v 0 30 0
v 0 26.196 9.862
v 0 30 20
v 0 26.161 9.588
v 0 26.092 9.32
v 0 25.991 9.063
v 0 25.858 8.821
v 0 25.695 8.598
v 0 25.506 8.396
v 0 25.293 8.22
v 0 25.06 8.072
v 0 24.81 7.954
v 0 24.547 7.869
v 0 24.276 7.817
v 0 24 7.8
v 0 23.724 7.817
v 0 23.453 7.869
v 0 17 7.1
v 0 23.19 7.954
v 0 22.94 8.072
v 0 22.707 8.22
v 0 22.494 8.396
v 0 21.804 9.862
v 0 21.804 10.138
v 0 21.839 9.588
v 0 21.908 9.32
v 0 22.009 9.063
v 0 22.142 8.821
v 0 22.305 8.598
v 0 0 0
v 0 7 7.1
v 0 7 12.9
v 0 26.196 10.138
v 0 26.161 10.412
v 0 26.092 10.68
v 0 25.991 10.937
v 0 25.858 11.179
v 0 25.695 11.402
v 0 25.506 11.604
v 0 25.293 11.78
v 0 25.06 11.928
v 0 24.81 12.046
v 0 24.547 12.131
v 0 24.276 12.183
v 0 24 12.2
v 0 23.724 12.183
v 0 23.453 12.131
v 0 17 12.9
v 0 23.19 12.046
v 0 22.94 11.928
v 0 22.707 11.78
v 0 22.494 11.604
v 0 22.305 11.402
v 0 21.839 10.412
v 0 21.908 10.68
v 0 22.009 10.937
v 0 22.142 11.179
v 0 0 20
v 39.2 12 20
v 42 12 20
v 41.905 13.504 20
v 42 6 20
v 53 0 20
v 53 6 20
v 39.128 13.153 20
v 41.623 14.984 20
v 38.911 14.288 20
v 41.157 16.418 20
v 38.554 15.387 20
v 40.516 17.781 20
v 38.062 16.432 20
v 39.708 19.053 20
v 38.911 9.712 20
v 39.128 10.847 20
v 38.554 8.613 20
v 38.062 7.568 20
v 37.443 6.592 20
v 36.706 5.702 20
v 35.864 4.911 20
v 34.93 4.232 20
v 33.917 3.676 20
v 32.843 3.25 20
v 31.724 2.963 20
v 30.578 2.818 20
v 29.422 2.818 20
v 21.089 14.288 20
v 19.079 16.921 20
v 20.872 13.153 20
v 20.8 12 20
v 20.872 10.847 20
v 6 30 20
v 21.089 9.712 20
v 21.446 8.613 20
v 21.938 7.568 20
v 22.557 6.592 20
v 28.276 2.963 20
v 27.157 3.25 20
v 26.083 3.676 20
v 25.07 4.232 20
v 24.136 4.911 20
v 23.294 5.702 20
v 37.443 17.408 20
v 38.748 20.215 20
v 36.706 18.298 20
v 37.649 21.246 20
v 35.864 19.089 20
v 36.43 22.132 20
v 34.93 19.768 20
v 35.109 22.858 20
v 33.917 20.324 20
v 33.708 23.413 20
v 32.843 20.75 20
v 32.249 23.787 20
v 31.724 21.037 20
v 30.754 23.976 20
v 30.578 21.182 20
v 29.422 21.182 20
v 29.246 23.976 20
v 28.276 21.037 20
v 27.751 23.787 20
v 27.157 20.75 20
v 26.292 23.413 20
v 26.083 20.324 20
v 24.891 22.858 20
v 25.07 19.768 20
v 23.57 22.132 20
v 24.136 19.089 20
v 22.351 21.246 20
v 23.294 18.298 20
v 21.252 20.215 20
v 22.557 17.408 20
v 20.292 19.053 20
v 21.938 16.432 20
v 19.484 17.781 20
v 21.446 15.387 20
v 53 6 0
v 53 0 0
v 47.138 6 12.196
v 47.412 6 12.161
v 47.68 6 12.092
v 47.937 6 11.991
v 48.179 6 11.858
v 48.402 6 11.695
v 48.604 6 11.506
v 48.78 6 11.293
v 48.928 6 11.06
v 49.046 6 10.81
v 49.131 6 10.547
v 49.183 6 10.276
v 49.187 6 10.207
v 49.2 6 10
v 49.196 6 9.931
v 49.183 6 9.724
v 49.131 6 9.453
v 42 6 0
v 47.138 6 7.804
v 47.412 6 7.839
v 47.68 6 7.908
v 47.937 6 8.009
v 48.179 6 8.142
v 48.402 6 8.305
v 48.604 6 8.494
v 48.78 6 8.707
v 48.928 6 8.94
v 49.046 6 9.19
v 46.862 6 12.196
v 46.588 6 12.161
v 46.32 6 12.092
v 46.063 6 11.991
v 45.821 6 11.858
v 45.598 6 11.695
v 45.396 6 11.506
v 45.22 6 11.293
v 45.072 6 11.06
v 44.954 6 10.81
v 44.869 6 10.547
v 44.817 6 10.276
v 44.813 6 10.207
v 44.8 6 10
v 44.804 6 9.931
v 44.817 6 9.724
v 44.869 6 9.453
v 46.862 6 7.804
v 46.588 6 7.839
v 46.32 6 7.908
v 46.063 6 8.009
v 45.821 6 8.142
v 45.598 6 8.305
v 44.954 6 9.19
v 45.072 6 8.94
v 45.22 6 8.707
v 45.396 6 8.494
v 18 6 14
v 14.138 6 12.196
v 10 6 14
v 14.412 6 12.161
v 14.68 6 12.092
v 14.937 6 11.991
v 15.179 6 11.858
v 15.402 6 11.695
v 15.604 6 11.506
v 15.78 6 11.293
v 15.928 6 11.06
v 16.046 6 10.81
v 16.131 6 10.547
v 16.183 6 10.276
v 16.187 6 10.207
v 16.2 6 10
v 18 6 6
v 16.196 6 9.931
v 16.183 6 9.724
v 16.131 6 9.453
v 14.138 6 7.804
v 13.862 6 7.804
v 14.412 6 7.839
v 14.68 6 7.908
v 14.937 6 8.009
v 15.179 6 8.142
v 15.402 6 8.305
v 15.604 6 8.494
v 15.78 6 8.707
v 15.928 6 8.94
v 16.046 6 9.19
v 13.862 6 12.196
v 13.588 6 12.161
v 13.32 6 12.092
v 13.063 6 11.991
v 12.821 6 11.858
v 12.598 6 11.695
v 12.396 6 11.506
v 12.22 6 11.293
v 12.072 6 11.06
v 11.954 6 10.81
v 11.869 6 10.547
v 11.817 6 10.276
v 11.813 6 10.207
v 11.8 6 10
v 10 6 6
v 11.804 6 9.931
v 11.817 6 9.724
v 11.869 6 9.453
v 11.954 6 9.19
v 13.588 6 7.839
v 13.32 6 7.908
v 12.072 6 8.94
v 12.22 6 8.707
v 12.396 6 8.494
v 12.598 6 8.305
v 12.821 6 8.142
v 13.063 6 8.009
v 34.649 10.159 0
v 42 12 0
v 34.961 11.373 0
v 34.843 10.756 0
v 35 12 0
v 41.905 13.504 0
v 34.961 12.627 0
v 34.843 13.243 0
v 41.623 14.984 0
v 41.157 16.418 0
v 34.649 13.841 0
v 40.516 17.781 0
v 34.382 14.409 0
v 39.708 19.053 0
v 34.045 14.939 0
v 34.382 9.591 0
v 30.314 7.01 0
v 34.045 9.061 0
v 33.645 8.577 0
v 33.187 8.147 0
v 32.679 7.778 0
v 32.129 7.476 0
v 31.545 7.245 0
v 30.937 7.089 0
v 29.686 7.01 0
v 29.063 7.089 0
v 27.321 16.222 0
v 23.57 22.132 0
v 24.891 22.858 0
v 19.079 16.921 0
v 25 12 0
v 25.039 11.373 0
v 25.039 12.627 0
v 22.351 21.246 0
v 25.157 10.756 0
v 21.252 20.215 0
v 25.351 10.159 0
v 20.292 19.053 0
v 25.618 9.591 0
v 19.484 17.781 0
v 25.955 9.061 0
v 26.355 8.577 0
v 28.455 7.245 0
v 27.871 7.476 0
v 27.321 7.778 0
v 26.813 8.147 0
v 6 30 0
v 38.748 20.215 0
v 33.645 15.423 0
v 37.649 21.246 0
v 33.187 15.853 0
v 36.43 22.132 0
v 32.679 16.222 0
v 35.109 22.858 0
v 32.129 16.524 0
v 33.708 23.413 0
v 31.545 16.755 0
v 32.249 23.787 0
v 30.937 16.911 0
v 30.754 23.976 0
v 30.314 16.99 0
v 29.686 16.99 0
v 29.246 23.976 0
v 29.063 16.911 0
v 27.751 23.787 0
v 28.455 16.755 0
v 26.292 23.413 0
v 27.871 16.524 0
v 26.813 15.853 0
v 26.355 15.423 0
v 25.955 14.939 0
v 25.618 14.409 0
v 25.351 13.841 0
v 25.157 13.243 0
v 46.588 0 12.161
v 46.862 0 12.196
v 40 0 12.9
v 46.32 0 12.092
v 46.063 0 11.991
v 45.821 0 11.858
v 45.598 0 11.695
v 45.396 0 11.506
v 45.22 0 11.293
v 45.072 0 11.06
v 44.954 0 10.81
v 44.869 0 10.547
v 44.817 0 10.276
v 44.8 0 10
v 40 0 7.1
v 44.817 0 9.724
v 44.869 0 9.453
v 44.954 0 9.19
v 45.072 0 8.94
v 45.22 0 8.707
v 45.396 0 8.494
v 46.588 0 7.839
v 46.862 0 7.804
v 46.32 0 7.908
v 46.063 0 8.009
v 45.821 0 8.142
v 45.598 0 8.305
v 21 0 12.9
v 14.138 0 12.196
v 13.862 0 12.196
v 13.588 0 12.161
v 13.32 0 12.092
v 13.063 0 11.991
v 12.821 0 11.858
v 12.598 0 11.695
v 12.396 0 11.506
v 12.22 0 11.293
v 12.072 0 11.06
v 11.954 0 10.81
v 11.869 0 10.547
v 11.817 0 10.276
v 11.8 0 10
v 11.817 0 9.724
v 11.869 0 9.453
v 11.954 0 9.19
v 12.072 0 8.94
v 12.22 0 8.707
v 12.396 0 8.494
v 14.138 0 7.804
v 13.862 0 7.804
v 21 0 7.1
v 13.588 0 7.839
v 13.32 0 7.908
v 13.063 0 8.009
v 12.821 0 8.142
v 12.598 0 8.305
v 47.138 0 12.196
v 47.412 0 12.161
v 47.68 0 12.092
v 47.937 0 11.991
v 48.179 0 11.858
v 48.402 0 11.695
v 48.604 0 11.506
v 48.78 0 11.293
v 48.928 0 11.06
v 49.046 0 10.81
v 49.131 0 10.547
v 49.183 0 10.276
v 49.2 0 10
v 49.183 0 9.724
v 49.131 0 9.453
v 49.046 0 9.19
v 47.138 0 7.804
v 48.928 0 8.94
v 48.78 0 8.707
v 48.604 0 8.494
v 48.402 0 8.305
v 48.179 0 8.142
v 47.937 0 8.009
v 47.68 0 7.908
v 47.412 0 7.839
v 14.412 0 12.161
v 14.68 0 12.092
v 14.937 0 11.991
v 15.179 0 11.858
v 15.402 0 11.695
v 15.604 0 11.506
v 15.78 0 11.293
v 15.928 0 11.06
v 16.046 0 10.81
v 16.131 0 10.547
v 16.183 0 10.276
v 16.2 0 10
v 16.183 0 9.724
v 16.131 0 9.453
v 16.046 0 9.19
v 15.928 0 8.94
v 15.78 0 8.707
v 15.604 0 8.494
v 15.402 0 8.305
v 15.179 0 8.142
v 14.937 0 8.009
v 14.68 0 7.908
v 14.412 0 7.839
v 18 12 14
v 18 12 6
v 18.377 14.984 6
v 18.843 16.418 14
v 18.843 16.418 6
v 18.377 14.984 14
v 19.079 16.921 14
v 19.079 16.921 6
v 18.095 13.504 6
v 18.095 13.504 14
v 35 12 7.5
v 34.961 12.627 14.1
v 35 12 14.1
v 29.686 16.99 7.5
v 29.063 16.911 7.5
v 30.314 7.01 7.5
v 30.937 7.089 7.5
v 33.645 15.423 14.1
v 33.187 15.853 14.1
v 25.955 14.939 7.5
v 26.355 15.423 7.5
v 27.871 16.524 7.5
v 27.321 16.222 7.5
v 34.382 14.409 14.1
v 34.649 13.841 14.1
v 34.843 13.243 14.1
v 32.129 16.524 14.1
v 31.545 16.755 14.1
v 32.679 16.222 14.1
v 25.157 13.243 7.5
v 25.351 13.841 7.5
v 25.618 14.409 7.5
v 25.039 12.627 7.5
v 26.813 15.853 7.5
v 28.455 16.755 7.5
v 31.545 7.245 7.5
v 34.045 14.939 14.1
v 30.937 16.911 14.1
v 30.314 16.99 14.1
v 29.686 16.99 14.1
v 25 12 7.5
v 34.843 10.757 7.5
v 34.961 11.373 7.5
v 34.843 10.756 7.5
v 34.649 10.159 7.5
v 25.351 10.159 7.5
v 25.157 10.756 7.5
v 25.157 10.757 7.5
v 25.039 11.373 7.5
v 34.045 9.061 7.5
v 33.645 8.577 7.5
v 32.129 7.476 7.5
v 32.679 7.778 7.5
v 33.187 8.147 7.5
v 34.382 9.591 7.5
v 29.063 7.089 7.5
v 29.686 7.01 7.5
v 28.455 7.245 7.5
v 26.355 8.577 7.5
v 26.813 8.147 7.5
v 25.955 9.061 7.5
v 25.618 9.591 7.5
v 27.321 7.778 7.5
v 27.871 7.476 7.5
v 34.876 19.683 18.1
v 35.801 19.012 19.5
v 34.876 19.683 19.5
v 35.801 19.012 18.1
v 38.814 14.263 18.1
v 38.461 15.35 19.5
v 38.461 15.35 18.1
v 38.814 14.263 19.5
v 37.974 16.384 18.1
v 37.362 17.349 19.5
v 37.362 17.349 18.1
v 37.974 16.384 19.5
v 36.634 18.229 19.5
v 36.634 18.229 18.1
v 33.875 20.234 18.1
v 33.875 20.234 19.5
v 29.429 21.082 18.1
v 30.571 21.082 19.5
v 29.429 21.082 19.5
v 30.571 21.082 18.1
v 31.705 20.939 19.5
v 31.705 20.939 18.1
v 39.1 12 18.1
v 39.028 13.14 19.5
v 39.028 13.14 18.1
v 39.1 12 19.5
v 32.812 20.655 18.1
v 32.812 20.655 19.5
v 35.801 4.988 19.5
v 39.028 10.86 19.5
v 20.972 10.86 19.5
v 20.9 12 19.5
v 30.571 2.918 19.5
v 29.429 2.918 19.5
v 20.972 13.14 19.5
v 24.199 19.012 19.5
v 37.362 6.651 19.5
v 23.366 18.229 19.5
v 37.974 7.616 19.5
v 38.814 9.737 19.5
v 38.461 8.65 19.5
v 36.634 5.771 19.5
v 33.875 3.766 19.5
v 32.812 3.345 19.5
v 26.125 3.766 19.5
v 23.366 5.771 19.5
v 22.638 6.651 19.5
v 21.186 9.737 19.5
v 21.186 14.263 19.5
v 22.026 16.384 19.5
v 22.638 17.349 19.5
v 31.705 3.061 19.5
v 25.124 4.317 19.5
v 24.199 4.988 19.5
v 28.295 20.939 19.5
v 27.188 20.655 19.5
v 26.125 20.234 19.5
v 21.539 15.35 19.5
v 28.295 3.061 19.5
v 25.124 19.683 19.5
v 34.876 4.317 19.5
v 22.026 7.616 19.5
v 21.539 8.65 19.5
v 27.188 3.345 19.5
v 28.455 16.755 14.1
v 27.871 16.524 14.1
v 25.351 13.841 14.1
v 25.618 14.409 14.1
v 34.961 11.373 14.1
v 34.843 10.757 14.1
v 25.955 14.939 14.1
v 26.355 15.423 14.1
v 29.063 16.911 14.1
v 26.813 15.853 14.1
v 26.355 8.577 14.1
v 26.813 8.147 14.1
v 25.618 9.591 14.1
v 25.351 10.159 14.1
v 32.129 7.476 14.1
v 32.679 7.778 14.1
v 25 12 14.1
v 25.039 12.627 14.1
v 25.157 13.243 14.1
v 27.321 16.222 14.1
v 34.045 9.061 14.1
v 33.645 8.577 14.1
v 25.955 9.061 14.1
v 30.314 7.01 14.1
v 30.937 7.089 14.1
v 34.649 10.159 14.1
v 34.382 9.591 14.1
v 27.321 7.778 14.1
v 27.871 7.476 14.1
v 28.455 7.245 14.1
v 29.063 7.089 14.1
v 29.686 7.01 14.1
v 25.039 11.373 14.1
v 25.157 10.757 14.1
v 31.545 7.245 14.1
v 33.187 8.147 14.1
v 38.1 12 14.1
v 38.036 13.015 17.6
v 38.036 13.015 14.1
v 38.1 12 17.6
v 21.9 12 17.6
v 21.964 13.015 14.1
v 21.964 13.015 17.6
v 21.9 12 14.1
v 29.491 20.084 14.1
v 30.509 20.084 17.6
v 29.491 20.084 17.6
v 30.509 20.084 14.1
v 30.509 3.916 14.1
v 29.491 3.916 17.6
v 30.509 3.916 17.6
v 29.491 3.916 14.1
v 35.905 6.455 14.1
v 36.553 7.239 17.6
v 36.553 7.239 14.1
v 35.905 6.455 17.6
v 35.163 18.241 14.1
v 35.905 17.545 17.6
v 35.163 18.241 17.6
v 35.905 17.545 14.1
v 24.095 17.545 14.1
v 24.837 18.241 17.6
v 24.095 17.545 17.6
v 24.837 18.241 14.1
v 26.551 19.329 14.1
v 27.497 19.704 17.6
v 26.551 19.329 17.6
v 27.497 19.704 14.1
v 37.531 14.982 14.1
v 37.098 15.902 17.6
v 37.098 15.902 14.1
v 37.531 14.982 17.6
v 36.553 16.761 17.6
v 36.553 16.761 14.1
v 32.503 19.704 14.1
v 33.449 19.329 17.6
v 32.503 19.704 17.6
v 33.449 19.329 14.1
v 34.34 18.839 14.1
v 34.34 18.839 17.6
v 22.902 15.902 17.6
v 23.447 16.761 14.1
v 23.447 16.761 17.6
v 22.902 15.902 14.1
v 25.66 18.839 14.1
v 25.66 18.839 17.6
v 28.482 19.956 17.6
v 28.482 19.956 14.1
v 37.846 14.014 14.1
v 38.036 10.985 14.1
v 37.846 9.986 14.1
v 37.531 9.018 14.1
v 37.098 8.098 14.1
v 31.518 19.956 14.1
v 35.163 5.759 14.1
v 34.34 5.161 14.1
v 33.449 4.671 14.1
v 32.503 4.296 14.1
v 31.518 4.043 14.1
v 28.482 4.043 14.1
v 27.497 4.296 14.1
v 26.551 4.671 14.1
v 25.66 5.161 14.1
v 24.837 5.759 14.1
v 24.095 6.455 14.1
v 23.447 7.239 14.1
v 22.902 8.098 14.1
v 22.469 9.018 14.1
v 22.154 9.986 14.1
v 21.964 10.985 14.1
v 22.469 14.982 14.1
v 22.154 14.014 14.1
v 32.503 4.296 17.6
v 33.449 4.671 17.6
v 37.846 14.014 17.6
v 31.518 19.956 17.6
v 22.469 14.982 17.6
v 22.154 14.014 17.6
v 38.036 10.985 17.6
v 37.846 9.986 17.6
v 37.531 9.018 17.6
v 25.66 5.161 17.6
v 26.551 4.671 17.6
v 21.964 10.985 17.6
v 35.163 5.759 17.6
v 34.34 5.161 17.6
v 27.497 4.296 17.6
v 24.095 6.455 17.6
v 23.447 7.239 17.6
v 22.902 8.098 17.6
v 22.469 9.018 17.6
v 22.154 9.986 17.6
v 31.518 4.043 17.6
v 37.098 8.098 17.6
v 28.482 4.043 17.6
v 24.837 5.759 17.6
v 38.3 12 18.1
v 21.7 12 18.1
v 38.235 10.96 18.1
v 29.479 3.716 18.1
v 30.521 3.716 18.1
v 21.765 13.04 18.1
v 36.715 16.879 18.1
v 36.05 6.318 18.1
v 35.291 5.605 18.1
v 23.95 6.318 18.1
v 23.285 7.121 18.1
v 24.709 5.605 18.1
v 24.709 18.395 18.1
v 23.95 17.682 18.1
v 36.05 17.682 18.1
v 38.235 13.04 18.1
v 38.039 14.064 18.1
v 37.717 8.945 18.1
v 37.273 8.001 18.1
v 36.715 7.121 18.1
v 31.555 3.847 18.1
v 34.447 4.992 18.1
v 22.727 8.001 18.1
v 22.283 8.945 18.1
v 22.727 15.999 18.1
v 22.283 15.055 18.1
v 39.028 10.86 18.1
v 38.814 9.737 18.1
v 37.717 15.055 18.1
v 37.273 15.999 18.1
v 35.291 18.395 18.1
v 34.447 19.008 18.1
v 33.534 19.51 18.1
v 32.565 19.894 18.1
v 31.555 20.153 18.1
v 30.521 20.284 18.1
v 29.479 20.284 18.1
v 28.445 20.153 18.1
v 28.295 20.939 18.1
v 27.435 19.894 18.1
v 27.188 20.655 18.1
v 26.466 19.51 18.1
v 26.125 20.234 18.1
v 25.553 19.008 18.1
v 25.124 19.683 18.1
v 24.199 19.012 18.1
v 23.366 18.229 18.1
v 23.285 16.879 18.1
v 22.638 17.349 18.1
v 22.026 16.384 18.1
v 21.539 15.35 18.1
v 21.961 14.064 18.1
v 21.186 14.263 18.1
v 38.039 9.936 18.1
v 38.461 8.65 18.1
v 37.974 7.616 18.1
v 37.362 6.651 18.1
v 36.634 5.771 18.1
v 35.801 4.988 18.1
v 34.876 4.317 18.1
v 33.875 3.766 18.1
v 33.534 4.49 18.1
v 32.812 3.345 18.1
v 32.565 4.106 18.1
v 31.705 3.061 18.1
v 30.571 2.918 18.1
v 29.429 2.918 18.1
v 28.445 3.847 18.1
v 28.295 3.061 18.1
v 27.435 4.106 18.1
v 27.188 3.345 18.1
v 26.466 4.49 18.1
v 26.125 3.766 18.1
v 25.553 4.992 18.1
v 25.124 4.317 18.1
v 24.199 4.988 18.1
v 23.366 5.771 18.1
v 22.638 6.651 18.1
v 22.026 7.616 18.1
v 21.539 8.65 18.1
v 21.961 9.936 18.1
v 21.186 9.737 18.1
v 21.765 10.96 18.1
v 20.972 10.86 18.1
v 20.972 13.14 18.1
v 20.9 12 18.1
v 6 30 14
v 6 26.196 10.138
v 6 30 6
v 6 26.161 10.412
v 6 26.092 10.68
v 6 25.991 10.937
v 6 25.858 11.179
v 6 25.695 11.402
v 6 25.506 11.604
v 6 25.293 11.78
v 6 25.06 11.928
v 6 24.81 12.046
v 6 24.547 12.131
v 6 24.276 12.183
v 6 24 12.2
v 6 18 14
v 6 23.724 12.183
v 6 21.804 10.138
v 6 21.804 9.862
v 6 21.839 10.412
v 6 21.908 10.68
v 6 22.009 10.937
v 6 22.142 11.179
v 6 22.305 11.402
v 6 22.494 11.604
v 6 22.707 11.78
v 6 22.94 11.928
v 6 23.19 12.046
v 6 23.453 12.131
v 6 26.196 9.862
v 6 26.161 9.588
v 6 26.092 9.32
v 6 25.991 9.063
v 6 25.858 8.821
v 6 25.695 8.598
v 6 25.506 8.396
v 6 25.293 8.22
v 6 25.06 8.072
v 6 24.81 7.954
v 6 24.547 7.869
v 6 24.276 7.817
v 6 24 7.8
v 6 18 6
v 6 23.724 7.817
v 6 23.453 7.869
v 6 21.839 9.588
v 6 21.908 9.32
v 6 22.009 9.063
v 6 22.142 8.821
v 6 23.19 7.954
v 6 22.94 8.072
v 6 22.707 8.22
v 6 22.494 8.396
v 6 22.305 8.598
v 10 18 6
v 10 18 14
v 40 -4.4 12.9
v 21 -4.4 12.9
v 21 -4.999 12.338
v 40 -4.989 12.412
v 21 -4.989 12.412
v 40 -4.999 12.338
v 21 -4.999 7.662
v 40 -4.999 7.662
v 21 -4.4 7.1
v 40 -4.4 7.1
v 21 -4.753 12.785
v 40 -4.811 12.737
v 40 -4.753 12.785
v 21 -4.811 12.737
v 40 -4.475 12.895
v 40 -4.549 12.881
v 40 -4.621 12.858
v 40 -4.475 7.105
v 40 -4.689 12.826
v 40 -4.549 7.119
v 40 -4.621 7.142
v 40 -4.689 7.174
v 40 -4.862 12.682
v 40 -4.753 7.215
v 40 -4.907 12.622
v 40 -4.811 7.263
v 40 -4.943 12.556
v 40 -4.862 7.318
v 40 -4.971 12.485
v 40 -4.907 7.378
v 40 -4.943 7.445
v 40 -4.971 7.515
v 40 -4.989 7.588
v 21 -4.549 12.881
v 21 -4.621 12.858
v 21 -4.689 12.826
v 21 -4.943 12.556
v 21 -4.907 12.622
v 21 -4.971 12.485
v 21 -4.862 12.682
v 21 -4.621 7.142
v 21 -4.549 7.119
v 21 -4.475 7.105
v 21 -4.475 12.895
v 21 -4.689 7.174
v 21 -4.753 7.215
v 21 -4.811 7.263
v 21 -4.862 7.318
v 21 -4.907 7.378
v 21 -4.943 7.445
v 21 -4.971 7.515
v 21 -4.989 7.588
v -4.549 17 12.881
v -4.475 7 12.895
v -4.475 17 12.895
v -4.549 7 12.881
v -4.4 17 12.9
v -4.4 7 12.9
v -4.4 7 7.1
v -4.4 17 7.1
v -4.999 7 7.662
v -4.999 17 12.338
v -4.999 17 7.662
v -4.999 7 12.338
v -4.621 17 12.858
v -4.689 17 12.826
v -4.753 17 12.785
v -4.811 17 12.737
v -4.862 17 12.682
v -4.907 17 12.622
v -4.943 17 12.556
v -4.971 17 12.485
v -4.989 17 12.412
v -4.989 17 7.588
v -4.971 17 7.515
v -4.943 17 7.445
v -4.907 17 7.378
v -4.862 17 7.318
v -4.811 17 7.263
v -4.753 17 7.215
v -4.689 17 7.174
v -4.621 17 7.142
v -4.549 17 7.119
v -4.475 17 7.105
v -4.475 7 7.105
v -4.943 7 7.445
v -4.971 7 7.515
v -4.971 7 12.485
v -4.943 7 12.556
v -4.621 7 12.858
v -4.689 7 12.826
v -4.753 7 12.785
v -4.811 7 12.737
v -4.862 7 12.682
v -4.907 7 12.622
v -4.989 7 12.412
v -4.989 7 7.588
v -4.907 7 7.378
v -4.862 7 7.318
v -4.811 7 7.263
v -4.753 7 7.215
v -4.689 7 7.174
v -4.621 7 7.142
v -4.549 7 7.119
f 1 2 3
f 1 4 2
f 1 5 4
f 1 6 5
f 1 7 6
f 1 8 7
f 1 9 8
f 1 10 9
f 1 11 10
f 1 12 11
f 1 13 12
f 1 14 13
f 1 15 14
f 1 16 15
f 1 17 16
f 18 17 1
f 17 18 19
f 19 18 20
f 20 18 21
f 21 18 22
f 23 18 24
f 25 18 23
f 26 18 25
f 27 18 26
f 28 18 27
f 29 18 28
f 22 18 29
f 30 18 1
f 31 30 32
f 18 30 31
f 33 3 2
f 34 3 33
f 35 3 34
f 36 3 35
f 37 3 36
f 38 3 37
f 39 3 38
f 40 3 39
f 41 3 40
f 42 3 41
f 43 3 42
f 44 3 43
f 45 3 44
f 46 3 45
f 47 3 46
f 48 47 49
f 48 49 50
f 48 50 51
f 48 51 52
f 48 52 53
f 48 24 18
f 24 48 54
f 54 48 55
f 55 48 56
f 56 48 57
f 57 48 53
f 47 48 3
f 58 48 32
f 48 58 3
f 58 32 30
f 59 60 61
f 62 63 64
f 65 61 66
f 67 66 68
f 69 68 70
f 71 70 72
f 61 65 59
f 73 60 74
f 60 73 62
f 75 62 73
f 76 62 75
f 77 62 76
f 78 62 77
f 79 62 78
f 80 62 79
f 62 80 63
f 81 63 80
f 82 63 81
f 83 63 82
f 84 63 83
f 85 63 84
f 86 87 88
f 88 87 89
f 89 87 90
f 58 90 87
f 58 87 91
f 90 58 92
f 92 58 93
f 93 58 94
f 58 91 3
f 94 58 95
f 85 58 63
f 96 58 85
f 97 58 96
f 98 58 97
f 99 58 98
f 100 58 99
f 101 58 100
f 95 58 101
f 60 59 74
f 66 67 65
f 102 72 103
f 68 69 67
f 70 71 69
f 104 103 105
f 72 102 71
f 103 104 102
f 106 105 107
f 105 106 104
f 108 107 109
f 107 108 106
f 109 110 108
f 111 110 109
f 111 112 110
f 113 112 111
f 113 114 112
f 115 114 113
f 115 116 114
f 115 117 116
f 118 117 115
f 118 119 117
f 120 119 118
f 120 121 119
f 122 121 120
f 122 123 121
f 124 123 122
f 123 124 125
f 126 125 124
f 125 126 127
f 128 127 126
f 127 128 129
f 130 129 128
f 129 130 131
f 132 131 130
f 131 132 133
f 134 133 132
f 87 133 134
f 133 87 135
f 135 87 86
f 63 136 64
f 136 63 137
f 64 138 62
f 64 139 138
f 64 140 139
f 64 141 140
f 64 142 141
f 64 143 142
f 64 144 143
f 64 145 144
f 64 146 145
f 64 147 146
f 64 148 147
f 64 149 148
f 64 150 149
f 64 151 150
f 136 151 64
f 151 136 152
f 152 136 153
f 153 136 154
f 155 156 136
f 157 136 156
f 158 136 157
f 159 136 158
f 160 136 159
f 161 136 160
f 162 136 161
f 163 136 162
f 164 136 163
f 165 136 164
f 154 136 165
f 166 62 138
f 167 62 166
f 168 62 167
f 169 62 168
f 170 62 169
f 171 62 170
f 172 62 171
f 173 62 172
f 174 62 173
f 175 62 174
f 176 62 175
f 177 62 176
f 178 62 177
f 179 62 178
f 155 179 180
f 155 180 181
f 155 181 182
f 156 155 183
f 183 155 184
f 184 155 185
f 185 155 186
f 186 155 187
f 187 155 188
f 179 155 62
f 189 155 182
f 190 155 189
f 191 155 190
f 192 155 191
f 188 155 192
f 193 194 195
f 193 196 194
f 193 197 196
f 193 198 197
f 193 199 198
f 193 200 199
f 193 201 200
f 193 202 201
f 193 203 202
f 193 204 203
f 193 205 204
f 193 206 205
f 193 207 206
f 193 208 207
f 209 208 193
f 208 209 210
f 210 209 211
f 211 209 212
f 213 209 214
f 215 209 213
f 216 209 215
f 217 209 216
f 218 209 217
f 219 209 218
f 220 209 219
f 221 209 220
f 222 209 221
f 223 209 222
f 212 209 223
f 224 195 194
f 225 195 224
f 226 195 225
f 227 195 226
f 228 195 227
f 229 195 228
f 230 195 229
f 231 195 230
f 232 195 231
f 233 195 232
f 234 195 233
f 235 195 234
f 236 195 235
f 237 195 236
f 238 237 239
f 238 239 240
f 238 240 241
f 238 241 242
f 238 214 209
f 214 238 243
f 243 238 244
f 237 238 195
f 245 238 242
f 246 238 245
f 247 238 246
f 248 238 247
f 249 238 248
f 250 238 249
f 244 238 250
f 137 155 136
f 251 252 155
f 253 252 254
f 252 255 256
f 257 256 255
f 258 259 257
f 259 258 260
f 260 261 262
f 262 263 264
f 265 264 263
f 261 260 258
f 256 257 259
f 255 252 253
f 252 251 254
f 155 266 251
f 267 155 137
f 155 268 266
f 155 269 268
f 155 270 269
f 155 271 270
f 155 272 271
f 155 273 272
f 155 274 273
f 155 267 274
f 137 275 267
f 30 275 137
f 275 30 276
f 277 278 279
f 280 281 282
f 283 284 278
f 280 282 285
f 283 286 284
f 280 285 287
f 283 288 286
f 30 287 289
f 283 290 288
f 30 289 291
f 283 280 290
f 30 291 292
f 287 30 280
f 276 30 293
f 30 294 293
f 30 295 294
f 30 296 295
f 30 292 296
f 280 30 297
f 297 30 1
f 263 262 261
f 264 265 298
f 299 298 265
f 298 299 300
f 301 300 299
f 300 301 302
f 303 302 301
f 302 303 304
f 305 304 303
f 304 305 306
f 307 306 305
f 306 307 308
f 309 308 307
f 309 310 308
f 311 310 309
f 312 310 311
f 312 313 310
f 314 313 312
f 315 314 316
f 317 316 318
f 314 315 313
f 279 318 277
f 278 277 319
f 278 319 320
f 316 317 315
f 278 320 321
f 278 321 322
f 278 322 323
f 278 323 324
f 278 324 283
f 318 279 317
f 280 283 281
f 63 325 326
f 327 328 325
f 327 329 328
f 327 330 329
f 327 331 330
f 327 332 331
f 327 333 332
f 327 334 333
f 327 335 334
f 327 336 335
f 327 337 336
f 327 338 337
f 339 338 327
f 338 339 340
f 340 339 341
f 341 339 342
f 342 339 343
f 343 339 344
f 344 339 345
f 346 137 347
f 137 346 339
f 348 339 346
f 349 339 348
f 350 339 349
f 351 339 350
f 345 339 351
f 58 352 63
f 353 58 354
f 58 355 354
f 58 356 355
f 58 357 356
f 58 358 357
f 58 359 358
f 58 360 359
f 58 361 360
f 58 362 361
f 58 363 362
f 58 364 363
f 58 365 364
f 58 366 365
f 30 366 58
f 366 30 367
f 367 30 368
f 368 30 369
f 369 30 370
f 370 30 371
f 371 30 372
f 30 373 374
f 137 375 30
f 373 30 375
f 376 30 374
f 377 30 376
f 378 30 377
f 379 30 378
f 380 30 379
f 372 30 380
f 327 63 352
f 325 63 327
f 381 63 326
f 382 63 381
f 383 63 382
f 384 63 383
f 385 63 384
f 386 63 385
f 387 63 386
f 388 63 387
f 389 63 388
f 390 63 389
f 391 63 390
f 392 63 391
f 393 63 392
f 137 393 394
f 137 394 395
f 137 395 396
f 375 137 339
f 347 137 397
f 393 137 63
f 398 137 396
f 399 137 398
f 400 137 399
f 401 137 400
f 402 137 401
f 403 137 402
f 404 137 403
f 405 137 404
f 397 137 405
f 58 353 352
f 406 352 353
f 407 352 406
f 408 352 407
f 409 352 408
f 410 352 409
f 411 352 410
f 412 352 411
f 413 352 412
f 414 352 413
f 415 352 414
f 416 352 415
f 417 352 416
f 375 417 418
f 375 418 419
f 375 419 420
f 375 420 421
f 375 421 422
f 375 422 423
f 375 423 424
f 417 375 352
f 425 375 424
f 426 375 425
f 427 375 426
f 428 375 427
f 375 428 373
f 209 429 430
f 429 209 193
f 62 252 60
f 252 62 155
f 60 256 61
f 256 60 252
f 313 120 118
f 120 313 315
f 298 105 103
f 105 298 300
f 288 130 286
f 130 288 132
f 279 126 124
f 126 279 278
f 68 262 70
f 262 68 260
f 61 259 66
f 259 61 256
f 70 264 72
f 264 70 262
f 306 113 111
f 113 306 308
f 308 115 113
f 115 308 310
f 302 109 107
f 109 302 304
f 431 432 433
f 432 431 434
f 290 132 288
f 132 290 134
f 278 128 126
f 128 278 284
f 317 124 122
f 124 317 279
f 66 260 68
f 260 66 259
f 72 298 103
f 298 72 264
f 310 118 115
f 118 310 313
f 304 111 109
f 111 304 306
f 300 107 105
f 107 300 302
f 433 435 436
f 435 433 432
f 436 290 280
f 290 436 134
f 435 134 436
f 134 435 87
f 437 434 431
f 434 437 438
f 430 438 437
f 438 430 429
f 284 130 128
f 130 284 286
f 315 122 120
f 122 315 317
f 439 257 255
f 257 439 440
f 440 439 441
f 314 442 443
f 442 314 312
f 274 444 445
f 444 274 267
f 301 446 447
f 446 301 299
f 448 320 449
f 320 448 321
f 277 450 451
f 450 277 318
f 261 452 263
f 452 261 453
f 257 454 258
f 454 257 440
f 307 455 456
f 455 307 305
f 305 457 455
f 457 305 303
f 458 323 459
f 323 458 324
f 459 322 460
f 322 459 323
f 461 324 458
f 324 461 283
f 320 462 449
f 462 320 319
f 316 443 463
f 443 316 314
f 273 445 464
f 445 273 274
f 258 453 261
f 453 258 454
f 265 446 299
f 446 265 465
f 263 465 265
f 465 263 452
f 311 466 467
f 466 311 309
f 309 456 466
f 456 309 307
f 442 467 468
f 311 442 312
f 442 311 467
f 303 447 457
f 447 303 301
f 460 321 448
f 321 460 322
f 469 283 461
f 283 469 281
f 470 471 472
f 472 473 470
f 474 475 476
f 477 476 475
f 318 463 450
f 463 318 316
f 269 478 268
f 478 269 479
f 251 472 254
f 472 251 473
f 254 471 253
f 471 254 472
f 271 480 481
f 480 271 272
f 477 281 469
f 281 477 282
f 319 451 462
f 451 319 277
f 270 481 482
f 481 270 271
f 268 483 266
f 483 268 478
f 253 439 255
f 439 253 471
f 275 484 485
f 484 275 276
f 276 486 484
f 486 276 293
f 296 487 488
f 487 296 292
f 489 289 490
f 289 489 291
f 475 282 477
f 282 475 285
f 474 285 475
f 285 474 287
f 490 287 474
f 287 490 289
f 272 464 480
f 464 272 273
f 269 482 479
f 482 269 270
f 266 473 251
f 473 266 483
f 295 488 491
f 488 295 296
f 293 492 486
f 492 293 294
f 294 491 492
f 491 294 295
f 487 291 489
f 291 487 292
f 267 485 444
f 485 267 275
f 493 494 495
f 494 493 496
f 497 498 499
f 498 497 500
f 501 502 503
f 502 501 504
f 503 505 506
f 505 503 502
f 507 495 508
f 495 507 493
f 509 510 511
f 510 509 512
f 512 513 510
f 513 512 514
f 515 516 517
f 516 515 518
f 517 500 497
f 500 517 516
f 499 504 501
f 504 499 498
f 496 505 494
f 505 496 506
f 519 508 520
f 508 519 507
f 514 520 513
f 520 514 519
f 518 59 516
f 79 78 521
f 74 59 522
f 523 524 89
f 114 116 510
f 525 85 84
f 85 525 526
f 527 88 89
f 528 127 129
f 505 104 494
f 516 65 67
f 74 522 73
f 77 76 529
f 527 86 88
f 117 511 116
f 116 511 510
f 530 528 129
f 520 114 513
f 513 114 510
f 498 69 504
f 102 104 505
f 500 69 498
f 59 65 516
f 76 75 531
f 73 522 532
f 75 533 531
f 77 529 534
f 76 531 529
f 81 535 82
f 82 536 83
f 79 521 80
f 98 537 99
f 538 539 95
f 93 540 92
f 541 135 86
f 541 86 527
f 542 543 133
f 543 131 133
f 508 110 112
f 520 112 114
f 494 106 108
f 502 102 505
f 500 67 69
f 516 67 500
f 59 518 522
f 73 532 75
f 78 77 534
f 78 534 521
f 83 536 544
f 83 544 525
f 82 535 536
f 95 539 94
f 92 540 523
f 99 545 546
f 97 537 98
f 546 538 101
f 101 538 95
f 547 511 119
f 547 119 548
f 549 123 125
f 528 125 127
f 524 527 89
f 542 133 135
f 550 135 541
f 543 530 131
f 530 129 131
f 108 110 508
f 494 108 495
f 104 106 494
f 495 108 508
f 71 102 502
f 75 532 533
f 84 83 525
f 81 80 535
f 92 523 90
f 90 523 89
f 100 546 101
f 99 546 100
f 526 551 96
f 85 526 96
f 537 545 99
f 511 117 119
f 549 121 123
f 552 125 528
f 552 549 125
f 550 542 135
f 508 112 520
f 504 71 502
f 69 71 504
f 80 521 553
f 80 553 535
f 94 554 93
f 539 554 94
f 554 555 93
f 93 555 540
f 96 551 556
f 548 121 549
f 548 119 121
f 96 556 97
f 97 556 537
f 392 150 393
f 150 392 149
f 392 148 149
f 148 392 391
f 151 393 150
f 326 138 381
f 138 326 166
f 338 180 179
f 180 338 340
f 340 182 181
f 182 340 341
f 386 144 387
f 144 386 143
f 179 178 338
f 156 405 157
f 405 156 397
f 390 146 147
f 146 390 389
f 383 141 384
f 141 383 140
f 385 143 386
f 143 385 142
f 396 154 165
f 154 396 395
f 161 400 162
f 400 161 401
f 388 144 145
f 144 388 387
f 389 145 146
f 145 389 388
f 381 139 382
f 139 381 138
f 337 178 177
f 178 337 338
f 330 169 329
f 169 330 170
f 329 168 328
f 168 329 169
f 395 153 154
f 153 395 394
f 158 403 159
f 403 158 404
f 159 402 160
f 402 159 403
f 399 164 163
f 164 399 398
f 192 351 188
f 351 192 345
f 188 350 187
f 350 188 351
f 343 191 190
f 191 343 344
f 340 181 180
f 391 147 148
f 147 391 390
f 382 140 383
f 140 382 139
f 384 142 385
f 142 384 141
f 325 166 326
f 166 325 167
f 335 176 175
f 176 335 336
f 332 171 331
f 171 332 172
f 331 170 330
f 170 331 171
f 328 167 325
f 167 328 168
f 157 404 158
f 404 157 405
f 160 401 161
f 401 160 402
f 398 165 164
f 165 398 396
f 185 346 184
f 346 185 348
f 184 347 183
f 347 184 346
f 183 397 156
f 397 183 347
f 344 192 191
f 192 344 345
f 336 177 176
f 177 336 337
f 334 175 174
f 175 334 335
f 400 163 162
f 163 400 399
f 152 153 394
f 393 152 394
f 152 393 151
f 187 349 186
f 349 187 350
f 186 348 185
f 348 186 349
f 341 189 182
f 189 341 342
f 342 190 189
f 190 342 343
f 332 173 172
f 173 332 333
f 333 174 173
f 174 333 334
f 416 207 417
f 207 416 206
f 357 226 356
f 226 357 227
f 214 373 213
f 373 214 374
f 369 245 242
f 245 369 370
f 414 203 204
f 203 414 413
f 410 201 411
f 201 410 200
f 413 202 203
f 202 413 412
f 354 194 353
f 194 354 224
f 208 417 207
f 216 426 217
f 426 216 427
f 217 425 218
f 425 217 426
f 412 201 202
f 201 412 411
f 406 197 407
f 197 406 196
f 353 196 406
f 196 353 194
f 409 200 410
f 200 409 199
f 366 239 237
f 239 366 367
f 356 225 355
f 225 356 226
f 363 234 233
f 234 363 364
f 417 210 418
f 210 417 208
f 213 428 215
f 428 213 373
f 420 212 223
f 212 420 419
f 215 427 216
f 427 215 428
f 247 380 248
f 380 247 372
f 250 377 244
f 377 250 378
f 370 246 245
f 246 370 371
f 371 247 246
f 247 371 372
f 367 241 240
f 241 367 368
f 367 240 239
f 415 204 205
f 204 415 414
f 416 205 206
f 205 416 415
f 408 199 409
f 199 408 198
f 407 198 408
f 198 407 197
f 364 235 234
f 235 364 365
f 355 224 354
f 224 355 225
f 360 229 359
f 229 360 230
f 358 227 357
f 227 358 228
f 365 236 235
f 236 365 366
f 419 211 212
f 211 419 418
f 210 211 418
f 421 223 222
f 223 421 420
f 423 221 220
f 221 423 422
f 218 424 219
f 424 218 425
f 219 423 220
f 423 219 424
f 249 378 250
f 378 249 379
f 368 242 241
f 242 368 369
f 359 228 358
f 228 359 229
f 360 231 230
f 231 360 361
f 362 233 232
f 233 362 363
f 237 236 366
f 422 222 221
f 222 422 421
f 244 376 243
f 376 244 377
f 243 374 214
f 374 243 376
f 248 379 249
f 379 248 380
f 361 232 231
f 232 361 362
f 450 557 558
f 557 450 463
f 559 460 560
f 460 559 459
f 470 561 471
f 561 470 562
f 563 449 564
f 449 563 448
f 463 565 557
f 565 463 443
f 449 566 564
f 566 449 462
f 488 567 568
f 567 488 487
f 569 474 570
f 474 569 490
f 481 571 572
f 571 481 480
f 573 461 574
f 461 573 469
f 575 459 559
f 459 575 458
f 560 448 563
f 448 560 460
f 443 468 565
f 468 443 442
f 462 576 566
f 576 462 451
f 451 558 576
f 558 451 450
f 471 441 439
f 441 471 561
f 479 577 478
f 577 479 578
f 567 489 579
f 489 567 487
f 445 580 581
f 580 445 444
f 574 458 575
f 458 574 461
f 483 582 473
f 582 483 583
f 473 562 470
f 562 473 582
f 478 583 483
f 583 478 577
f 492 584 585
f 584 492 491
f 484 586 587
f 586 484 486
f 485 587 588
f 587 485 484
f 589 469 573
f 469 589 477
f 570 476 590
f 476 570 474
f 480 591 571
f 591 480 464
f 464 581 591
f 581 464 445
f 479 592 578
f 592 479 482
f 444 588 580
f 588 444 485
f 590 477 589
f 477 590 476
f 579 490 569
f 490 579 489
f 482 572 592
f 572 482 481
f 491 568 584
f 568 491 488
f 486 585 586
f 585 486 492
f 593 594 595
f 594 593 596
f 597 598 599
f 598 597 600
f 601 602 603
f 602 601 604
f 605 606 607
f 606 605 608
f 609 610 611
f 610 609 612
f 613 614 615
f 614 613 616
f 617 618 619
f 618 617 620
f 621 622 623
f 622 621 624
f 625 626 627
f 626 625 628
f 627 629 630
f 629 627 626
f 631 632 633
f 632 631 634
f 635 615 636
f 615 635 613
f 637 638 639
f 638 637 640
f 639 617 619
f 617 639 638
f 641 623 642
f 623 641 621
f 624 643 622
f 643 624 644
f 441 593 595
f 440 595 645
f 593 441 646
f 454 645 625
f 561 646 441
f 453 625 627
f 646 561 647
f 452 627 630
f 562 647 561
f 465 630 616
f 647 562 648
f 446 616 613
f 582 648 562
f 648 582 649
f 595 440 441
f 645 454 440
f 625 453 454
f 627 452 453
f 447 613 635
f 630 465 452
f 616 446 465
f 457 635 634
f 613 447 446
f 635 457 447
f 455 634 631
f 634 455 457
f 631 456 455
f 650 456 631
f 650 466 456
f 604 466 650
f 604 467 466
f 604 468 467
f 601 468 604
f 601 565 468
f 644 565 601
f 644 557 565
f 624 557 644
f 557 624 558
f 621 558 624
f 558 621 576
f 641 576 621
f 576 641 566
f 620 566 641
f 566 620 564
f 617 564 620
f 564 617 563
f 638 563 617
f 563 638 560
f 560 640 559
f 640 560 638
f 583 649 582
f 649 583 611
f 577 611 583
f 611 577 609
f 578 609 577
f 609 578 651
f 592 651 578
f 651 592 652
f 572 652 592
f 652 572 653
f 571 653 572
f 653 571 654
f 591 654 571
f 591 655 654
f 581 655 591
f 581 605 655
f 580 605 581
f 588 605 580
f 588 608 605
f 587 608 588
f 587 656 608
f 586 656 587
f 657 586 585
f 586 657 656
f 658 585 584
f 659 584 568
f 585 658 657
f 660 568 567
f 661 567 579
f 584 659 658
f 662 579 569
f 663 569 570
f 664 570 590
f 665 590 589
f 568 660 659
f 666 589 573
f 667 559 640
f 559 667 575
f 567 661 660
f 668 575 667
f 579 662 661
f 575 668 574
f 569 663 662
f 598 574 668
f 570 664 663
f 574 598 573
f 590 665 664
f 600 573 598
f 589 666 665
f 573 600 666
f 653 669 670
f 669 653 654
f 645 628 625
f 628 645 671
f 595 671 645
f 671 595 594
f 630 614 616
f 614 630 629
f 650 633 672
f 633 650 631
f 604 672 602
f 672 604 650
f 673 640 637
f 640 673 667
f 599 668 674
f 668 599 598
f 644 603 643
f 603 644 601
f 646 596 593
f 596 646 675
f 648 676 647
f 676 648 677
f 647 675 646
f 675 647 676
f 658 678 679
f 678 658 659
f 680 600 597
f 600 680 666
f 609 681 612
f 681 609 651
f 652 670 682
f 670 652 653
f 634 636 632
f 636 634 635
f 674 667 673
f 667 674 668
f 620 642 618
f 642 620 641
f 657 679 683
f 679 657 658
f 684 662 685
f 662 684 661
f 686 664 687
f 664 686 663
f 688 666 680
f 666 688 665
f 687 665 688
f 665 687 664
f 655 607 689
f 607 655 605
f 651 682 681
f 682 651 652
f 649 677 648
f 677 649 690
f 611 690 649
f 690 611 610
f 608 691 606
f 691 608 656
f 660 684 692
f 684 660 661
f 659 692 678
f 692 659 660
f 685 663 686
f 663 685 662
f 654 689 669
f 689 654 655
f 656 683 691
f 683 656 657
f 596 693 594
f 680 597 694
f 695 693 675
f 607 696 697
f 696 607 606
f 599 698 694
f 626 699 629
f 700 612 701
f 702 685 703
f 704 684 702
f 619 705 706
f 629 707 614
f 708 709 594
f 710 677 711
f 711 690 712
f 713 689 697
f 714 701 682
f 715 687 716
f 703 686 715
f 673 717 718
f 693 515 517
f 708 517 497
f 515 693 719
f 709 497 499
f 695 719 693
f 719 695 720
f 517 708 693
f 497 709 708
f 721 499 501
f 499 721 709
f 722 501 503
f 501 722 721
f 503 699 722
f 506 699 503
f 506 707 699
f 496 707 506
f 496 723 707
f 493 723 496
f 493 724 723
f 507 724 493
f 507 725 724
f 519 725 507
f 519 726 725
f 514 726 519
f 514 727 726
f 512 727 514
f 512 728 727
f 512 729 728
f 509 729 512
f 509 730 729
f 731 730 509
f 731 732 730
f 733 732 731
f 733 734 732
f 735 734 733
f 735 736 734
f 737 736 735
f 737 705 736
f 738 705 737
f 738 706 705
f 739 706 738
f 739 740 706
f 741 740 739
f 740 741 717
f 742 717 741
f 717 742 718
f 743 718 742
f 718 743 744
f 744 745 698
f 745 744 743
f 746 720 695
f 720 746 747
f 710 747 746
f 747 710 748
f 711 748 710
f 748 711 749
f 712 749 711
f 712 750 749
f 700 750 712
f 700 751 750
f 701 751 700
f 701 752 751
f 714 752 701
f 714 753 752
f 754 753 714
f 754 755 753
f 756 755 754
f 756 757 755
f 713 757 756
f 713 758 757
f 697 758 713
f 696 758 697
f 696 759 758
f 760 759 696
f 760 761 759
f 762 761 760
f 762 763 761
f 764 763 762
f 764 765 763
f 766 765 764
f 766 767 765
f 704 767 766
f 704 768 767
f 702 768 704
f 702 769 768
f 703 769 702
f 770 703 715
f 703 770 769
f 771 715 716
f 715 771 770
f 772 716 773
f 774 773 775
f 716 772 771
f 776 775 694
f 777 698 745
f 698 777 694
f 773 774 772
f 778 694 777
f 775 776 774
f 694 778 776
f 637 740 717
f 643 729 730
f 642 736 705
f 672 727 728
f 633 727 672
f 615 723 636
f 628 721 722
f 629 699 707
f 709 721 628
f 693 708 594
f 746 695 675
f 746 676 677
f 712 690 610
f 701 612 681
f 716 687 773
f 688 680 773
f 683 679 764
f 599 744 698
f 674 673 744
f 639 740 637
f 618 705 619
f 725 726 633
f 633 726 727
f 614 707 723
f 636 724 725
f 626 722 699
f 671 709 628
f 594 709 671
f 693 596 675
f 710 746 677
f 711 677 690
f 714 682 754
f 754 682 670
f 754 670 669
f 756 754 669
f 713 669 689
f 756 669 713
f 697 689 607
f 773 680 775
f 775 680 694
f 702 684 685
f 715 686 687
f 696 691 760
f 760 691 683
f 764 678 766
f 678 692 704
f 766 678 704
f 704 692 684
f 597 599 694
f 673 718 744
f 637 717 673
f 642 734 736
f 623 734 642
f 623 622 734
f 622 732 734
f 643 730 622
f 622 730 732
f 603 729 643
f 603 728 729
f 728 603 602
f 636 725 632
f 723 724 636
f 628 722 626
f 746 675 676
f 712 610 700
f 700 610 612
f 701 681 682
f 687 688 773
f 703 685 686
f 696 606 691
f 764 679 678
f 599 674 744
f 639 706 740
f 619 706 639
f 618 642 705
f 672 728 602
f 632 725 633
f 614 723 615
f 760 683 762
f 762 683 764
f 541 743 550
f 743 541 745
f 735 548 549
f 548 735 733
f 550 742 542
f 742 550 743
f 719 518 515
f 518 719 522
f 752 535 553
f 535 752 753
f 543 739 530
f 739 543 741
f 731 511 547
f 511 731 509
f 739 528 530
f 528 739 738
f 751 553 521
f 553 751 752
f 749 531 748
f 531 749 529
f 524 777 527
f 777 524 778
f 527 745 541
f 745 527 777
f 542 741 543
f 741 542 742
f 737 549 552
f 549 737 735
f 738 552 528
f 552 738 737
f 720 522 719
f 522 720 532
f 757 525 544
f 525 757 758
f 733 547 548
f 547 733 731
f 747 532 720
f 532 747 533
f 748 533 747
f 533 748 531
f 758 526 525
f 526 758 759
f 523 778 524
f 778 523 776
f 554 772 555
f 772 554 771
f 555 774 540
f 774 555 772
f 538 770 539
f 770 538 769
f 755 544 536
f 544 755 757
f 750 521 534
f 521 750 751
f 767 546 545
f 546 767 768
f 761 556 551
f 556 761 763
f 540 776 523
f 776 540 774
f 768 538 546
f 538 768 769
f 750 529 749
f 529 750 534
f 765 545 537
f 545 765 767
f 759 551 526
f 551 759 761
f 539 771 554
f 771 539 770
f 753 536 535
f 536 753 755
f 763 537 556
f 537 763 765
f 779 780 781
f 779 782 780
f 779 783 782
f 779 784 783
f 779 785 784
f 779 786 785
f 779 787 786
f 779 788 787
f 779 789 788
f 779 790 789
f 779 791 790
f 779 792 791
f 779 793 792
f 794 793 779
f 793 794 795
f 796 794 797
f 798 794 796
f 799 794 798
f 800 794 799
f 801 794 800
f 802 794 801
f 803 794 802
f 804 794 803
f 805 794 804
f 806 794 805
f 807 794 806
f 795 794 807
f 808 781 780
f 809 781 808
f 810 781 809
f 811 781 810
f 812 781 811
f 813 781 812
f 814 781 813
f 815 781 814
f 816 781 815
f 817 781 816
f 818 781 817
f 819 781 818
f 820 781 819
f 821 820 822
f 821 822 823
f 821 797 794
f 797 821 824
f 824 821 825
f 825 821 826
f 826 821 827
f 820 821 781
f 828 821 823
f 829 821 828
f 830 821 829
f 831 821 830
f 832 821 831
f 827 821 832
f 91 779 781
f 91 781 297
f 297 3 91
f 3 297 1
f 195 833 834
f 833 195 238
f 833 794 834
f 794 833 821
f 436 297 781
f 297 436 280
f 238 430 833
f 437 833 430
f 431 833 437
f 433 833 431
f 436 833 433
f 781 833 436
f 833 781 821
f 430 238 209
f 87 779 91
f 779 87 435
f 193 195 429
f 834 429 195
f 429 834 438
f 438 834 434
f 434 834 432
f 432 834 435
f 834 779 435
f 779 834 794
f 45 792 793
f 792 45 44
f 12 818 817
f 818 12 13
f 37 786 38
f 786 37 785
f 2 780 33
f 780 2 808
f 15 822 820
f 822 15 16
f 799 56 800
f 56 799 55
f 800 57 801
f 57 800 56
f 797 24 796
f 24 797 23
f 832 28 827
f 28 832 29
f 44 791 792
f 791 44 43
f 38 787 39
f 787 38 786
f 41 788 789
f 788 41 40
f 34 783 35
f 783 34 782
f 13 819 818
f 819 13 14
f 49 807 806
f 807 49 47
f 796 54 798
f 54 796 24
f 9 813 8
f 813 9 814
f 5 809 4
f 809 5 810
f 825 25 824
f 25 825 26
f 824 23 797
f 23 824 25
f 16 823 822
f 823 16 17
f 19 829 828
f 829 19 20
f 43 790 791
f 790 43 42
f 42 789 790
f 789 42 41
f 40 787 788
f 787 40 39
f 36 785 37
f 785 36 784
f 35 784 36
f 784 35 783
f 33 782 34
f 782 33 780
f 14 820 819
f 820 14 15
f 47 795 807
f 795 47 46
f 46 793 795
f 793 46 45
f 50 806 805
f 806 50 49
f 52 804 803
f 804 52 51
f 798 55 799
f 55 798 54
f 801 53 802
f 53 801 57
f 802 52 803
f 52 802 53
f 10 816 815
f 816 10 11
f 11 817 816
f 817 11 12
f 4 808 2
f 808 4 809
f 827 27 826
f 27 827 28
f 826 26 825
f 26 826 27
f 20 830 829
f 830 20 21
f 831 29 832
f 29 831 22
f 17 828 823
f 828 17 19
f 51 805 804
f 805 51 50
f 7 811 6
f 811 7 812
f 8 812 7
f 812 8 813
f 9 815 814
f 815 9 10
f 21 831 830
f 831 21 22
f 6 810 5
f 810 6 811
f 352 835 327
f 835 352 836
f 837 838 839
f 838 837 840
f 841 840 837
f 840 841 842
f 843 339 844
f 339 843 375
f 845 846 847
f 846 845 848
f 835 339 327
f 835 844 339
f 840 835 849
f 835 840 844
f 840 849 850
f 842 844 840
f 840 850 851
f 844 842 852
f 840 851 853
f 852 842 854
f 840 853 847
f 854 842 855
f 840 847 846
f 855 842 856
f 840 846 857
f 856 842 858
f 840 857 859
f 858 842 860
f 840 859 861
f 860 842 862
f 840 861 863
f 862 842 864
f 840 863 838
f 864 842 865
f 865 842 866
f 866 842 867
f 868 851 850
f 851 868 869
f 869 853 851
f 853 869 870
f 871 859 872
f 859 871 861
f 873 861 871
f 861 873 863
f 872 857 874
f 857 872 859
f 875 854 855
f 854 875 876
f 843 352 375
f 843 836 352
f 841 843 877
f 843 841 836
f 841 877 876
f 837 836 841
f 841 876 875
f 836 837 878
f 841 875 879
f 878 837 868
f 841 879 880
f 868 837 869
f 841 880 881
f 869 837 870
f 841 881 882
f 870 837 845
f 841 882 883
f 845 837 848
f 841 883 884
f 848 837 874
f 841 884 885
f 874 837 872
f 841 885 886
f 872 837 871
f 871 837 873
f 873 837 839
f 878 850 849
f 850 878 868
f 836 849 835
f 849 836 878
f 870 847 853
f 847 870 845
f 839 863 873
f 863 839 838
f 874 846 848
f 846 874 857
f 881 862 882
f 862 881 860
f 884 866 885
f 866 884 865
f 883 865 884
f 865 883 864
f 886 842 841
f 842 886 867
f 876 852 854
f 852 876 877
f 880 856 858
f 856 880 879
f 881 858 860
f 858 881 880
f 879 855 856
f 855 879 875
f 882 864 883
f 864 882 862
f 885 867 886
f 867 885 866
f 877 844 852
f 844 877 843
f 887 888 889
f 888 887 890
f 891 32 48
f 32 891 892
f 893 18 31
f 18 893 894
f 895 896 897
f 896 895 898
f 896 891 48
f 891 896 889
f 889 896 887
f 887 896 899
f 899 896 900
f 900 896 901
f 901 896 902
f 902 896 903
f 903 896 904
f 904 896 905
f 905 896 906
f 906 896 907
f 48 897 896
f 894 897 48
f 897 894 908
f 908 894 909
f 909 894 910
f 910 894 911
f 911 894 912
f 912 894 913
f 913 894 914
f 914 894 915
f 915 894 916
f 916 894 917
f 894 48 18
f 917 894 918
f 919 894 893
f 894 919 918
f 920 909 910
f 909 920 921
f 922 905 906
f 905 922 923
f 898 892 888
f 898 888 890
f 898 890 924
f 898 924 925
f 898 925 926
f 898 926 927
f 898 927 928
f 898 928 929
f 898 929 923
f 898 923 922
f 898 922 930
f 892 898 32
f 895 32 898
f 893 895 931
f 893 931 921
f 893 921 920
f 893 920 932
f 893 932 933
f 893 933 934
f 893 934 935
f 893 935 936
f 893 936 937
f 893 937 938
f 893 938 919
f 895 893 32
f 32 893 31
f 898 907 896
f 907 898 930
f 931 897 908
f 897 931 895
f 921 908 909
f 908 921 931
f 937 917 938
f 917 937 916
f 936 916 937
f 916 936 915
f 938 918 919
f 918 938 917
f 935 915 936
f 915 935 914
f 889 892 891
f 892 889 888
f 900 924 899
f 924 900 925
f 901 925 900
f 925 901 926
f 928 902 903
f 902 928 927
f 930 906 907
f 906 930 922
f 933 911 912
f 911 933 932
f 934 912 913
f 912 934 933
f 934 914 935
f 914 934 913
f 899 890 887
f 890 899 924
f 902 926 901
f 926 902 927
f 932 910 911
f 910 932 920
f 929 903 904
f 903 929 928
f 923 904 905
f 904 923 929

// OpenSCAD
// file: ../lib/nutsnbolts/data-access.scad
// Norm Nuts and Bolts - a OpenSCAD library
// Copyright (C) 2012  Johannes Kneer

// This program is free software: you can redistribute it and/or modify
// it under the terms of the GNU General Public License as published by
// the Free Software Foundation, either version 3 of the License, or
// (at your option) any later version.

// This program is distributed in the hope that it will be useful,
// but WITHOUT ANY WARRANTY; without even the implied warranty of
// MERCHANTABILITY or FITNESS FOR A PARTICULAR PURPOSE.  See the
// GNU General Public License for more details.

// You should have received a copy of the GNU General Public License
// along with this program.  If not, see <http://www.gnu.org/licenses/>.


// DATABASE ACCESS FUNCTIONS AND CONSTANTS



// == CONSTANTS ==

// screw table access keys
_NB_S_DESC            = 0;
_NB_S_FAMKEY			    = 1;
_NB_S_LENGTH          = 2;
_NB_S_NOTHREAD_LENGTH = 3;

_NB_F_DESC			      = 0;
_NB_F_OUTER_DIA       = 1;
_NB_F_INNER_DIA       = 2;
_NB_F_LEAD            = 3;
_NB_F_KEY             = 4;
_NB_F_KEY_DEPTH       = 5;
_NB_F_HEAD_HEIGHT     = 6;
_NB_F_HEAD_DIA        = 7;
_NB_F_NUT_KEY         = 8;
_NB_F_NUT_HEIGHT      = 9;
_NB_F_PITCH_FINE      = 10;
_NB_F_PITCH_MEDIUM    = 11;
_NB_F_PITCH_COARSE    = 12;


// == FUNCTIONS ==

// _get_screw("descriptor")   with descriptor = M8x25
//   find the line for a general object in the data matrix

function _get_screw(n) = data_screw[search([n], data_screw)[0]];
function _get_screw_fam(n) = data_screw_fam[search([_get_screw(n)[_NB_S_FAMKEY]], data_screw_fam)[0]];

function _get_fam(n) = data_screw_fam[search([n], data_screw_fam)[0]];


// _get_XXXXX("descriptor") functions
// find a single property in the database

function _get_desc(n)        = _get_screw(n)[_NB_S_DESC];
function _get_famkey(n)         = _get_screw(n)[_NB_S_FAMKEY];
function _get_length(n)      = _get_screw(n)[_NB_S_LENGTH];
function _get_nt_length(n)   = _get_screw(n)[_NB_S_NOTHREAD_LENGTH];

function _get_outer_dia(n)   = _get_screw_fam(n)[_NB_F_OUTER_DIA];
function _get_inner_dia(n)   = _get_screw_fam(n)[_NB_F_INNER_DIA];
function _get_lead(n)        = _get_screw_fam(n)[_NB_F_LEAD];
function _get_head_height(n) = _get_screw_fam(n)[_NB_F_HEAD_HEIGHT];
function _get_head_dia(n)    = _get_screw_fam(n)[_NB_F_HEAD_DIA];
function _get_nut_key(n)     = _get_screw_fam(n)[_NB_F_NUT_KEY];
function _get_nut_height(n)  = _get_screw_fam(n)[_NB_F_NUT_HEIGHT];
function _get_fine_pitch(n)  = _get_screw_fam(n)[_NB_F_PITCH_FINE];
function _get_medium_pitch(n)  = _get_screw_fam(n)[_NB_F_PITCH_MEDIUM];
function _get_coarse_pitch(n)  = _get_screw_fam(n)[_NB_F_PITCH_COARSE];
// file: ../globals.scad
// Global variables

$fn = 50;
clearance = 0.4; // Nozzle width
// file: f688zz.scad
include <../globals.scad>;

module f688zz_mount()
{
    difference(){
        cylinder(d=24,h=12);
        cylinder(d=10,h=12);
        translate([0,0,7-clearance])cylinder(d=16+clearance/2,h=12);
        translate([0,0,10.3-clearance/2])cylinder(d1=16+clearance/2,d2=16.4+clearance/2,h=0.5);
        translate([0,0,10.8-clearance/2])cylinder(d=18+clearance/2,h=12);
    }
} 
// main file
include <f688zz.scad>
include <../lib/nutsnbolts/cyl_head_bolt.scad>;

module gantry_y_back_left_front_right()
{
    difference(){
        union(){
            cube([53,6,20]);
            translate([18,0,0])cube([24,12,20]);
            translate([30,12,0])cylinder(d=24,h=20);
        }
        translate([30,12,0])cylinder(d=10,h=7.5);
        translate([30,12,7.5])cylinder(d=18+clearance/2,h=12);
        translate([30,12,19.5])cylinder(d1=18+clearance/2,d2=18+clearance,h=0.5);
        translate([47,0,10])rotate([90,0,0])hole_through("M4",l=8, cld=clearance);
        translate([14,0,10])rotate([90,0,0])hole_through("M4",l=8, cld=clearance);
    }
    translate([30,12,7.5])f688zz_mount();
    
    intersection(){
        difference(){
            union(){
                cube([6,30,20]);
                cube([10,18,20]);
                translate([6,-18,0])rotate([0,0,45])cube([24*sqrt(2),24*sqrt(2),6]);
                translate([6,-18,14])rotate([0,0,45])cube([24*sqrt(2),24*sqrt(2),6]);
            }
            translate([0,24,10])rotate([0,-90,0])hole_through("M4",l=8, cld=clearance);
        }
        cube([20,30,20]);
    }
    
    translate([40,-5,7.1])rotate([0,-90,0])translate([0.6,0.6,0])minkowski(){
        cube([4.6,4.4,18]);
        cylinder(d=1.2,h=1);
    }
    translate([0.6,17,7.1])rotate([0,-90,90])translate([0.6,0.6,0])minkowski(){
        cube([4.6,4.4,9]);
        cylinder(d=1.2,h=1);
    }
}

gantry_y_back_left_front_right();
